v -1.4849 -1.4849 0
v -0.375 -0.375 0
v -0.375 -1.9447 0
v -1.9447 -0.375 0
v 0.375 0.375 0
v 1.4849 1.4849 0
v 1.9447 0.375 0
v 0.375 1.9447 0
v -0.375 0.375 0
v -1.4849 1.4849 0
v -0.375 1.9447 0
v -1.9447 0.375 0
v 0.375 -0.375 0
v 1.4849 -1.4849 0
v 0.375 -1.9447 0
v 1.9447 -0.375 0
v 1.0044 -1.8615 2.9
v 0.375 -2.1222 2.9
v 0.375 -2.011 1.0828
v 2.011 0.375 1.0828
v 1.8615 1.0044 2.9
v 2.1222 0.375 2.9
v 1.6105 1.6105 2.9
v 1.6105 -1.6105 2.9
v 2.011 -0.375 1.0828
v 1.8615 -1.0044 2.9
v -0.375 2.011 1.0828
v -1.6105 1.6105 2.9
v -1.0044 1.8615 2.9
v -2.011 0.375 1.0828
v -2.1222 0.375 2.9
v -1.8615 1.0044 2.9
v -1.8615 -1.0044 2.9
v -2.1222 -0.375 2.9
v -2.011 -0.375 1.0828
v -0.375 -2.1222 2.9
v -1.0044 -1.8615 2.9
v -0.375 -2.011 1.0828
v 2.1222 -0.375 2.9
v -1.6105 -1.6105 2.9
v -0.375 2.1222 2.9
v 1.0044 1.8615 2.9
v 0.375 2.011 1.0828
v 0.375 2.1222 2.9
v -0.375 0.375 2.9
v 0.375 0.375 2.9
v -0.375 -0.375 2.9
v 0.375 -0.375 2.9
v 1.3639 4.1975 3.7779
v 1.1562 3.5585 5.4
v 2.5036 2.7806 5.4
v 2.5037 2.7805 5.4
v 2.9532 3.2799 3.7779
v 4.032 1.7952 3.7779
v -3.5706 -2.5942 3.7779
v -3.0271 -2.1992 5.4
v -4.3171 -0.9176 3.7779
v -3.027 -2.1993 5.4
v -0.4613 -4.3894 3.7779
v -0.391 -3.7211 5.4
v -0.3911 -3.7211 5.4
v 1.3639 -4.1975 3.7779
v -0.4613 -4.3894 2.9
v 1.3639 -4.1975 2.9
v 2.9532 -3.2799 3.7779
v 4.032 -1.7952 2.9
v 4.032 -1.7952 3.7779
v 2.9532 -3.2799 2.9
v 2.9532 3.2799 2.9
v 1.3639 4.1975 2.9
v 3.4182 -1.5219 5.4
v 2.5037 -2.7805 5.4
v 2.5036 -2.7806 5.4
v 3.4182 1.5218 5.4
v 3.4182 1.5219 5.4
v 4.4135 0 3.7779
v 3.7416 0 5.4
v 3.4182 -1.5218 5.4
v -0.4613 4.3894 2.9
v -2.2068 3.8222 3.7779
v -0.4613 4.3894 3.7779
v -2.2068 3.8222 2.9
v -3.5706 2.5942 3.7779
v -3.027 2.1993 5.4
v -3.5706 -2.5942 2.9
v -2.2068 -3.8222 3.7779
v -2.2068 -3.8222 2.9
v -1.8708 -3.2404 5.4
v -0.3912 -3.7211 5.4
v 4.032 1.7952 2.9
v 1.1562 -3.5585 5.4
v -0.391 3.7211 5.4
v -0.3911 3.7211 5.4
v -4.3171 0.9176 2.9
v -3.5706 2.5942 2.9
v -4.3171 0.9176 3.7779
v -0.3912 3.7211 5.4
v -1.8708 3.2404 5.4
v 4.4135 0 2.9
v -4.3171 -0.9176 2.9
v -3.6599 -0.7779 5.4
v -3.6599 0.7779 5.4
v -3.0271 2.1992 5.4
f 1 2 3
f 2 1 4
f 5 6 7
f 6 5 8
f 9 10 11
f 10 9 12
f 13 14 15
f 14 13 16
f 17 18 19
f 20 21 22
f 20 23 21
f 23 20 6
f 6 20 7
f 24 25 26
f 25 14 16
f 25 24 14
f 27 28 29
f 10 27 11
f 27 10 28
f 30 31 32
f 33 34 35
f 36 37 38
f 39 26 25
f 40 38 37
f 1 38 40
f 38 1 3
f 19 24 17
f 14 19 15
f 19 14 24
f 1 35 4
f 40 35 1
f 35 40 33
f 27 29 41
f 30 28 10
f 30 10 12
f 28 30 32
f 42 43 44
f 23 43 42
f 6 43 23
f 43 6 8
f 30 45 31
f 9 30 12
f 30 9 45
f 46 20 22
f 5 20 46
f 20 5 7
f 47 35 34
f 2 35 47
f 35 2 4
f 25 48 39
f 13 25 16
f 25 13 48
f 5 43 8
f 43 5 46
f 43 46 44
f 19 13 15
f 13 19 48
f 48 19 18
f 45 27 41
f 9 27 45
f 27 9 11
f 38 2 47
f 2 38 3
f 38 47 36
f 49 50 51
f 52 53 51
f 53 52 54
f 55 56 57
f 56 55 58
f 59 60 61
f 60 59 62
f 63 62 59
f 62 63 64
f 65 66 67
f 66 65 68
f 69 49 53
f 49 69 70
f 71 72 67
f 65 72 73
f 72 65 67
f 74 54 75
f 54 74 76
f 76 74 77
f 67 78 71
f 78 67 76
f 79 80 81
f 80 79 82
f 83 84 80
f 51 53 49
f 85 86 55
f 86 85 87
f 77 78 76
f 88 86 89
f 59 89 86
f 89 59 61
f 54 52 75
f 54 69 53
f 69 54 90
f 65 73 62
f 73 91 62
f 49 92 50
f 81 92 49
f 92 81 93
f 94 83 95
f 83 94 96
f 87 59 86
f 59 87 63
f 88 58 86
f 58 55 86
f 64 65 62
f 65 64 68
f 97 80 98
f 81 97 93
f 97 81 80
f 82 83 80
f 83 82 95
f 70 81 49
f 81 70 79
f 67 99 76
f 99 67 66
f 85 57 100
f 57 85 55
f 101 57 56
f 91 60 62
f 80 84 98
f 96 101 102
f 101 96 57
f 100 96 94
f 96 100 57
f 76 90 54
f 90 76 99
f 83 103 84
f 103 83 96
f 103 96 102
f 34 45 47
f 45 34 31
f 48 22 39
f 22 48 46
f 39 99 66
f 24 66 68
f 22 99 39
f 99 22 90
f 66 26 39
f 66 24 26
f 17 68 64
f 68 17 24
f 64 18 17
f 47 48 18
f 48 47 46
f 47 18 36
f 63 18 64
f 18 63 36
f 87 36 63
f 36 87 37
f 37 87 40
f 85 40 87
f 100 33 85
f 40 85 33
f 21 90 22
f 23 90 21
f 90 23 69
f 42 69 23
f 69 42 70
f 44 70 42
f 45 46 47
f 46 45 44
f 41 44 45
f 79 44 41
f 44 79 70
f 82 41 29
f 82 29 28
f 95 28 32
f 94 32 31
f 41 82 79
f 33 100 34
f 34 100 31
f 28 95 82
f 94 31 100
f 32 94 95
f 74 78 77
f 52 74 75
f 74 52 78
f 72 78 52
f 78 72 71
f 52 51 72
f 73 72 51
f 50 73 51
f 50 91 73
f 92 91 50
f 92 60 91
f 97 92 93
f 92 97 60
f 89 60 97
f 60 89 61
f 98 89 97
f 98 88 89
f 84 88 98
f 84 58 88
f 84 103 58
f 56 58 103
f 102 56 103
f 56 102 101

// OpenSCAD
difference() {
    cylinder(d1=4.2,d2=4.8,h=4.9);
    cube([5,0.75,6],center=true);  
    cube([0.75,5,6],center=true);  
};
translate([0,0,2.9]) {    
    difference() {
        sphere(d=9);
        translate([0,0,-4.5]){
            cube([9,9,9],center=true);
        };
        translate([0,0,7]){
            cube([9,9,9],center=true);
        };
    };
};
